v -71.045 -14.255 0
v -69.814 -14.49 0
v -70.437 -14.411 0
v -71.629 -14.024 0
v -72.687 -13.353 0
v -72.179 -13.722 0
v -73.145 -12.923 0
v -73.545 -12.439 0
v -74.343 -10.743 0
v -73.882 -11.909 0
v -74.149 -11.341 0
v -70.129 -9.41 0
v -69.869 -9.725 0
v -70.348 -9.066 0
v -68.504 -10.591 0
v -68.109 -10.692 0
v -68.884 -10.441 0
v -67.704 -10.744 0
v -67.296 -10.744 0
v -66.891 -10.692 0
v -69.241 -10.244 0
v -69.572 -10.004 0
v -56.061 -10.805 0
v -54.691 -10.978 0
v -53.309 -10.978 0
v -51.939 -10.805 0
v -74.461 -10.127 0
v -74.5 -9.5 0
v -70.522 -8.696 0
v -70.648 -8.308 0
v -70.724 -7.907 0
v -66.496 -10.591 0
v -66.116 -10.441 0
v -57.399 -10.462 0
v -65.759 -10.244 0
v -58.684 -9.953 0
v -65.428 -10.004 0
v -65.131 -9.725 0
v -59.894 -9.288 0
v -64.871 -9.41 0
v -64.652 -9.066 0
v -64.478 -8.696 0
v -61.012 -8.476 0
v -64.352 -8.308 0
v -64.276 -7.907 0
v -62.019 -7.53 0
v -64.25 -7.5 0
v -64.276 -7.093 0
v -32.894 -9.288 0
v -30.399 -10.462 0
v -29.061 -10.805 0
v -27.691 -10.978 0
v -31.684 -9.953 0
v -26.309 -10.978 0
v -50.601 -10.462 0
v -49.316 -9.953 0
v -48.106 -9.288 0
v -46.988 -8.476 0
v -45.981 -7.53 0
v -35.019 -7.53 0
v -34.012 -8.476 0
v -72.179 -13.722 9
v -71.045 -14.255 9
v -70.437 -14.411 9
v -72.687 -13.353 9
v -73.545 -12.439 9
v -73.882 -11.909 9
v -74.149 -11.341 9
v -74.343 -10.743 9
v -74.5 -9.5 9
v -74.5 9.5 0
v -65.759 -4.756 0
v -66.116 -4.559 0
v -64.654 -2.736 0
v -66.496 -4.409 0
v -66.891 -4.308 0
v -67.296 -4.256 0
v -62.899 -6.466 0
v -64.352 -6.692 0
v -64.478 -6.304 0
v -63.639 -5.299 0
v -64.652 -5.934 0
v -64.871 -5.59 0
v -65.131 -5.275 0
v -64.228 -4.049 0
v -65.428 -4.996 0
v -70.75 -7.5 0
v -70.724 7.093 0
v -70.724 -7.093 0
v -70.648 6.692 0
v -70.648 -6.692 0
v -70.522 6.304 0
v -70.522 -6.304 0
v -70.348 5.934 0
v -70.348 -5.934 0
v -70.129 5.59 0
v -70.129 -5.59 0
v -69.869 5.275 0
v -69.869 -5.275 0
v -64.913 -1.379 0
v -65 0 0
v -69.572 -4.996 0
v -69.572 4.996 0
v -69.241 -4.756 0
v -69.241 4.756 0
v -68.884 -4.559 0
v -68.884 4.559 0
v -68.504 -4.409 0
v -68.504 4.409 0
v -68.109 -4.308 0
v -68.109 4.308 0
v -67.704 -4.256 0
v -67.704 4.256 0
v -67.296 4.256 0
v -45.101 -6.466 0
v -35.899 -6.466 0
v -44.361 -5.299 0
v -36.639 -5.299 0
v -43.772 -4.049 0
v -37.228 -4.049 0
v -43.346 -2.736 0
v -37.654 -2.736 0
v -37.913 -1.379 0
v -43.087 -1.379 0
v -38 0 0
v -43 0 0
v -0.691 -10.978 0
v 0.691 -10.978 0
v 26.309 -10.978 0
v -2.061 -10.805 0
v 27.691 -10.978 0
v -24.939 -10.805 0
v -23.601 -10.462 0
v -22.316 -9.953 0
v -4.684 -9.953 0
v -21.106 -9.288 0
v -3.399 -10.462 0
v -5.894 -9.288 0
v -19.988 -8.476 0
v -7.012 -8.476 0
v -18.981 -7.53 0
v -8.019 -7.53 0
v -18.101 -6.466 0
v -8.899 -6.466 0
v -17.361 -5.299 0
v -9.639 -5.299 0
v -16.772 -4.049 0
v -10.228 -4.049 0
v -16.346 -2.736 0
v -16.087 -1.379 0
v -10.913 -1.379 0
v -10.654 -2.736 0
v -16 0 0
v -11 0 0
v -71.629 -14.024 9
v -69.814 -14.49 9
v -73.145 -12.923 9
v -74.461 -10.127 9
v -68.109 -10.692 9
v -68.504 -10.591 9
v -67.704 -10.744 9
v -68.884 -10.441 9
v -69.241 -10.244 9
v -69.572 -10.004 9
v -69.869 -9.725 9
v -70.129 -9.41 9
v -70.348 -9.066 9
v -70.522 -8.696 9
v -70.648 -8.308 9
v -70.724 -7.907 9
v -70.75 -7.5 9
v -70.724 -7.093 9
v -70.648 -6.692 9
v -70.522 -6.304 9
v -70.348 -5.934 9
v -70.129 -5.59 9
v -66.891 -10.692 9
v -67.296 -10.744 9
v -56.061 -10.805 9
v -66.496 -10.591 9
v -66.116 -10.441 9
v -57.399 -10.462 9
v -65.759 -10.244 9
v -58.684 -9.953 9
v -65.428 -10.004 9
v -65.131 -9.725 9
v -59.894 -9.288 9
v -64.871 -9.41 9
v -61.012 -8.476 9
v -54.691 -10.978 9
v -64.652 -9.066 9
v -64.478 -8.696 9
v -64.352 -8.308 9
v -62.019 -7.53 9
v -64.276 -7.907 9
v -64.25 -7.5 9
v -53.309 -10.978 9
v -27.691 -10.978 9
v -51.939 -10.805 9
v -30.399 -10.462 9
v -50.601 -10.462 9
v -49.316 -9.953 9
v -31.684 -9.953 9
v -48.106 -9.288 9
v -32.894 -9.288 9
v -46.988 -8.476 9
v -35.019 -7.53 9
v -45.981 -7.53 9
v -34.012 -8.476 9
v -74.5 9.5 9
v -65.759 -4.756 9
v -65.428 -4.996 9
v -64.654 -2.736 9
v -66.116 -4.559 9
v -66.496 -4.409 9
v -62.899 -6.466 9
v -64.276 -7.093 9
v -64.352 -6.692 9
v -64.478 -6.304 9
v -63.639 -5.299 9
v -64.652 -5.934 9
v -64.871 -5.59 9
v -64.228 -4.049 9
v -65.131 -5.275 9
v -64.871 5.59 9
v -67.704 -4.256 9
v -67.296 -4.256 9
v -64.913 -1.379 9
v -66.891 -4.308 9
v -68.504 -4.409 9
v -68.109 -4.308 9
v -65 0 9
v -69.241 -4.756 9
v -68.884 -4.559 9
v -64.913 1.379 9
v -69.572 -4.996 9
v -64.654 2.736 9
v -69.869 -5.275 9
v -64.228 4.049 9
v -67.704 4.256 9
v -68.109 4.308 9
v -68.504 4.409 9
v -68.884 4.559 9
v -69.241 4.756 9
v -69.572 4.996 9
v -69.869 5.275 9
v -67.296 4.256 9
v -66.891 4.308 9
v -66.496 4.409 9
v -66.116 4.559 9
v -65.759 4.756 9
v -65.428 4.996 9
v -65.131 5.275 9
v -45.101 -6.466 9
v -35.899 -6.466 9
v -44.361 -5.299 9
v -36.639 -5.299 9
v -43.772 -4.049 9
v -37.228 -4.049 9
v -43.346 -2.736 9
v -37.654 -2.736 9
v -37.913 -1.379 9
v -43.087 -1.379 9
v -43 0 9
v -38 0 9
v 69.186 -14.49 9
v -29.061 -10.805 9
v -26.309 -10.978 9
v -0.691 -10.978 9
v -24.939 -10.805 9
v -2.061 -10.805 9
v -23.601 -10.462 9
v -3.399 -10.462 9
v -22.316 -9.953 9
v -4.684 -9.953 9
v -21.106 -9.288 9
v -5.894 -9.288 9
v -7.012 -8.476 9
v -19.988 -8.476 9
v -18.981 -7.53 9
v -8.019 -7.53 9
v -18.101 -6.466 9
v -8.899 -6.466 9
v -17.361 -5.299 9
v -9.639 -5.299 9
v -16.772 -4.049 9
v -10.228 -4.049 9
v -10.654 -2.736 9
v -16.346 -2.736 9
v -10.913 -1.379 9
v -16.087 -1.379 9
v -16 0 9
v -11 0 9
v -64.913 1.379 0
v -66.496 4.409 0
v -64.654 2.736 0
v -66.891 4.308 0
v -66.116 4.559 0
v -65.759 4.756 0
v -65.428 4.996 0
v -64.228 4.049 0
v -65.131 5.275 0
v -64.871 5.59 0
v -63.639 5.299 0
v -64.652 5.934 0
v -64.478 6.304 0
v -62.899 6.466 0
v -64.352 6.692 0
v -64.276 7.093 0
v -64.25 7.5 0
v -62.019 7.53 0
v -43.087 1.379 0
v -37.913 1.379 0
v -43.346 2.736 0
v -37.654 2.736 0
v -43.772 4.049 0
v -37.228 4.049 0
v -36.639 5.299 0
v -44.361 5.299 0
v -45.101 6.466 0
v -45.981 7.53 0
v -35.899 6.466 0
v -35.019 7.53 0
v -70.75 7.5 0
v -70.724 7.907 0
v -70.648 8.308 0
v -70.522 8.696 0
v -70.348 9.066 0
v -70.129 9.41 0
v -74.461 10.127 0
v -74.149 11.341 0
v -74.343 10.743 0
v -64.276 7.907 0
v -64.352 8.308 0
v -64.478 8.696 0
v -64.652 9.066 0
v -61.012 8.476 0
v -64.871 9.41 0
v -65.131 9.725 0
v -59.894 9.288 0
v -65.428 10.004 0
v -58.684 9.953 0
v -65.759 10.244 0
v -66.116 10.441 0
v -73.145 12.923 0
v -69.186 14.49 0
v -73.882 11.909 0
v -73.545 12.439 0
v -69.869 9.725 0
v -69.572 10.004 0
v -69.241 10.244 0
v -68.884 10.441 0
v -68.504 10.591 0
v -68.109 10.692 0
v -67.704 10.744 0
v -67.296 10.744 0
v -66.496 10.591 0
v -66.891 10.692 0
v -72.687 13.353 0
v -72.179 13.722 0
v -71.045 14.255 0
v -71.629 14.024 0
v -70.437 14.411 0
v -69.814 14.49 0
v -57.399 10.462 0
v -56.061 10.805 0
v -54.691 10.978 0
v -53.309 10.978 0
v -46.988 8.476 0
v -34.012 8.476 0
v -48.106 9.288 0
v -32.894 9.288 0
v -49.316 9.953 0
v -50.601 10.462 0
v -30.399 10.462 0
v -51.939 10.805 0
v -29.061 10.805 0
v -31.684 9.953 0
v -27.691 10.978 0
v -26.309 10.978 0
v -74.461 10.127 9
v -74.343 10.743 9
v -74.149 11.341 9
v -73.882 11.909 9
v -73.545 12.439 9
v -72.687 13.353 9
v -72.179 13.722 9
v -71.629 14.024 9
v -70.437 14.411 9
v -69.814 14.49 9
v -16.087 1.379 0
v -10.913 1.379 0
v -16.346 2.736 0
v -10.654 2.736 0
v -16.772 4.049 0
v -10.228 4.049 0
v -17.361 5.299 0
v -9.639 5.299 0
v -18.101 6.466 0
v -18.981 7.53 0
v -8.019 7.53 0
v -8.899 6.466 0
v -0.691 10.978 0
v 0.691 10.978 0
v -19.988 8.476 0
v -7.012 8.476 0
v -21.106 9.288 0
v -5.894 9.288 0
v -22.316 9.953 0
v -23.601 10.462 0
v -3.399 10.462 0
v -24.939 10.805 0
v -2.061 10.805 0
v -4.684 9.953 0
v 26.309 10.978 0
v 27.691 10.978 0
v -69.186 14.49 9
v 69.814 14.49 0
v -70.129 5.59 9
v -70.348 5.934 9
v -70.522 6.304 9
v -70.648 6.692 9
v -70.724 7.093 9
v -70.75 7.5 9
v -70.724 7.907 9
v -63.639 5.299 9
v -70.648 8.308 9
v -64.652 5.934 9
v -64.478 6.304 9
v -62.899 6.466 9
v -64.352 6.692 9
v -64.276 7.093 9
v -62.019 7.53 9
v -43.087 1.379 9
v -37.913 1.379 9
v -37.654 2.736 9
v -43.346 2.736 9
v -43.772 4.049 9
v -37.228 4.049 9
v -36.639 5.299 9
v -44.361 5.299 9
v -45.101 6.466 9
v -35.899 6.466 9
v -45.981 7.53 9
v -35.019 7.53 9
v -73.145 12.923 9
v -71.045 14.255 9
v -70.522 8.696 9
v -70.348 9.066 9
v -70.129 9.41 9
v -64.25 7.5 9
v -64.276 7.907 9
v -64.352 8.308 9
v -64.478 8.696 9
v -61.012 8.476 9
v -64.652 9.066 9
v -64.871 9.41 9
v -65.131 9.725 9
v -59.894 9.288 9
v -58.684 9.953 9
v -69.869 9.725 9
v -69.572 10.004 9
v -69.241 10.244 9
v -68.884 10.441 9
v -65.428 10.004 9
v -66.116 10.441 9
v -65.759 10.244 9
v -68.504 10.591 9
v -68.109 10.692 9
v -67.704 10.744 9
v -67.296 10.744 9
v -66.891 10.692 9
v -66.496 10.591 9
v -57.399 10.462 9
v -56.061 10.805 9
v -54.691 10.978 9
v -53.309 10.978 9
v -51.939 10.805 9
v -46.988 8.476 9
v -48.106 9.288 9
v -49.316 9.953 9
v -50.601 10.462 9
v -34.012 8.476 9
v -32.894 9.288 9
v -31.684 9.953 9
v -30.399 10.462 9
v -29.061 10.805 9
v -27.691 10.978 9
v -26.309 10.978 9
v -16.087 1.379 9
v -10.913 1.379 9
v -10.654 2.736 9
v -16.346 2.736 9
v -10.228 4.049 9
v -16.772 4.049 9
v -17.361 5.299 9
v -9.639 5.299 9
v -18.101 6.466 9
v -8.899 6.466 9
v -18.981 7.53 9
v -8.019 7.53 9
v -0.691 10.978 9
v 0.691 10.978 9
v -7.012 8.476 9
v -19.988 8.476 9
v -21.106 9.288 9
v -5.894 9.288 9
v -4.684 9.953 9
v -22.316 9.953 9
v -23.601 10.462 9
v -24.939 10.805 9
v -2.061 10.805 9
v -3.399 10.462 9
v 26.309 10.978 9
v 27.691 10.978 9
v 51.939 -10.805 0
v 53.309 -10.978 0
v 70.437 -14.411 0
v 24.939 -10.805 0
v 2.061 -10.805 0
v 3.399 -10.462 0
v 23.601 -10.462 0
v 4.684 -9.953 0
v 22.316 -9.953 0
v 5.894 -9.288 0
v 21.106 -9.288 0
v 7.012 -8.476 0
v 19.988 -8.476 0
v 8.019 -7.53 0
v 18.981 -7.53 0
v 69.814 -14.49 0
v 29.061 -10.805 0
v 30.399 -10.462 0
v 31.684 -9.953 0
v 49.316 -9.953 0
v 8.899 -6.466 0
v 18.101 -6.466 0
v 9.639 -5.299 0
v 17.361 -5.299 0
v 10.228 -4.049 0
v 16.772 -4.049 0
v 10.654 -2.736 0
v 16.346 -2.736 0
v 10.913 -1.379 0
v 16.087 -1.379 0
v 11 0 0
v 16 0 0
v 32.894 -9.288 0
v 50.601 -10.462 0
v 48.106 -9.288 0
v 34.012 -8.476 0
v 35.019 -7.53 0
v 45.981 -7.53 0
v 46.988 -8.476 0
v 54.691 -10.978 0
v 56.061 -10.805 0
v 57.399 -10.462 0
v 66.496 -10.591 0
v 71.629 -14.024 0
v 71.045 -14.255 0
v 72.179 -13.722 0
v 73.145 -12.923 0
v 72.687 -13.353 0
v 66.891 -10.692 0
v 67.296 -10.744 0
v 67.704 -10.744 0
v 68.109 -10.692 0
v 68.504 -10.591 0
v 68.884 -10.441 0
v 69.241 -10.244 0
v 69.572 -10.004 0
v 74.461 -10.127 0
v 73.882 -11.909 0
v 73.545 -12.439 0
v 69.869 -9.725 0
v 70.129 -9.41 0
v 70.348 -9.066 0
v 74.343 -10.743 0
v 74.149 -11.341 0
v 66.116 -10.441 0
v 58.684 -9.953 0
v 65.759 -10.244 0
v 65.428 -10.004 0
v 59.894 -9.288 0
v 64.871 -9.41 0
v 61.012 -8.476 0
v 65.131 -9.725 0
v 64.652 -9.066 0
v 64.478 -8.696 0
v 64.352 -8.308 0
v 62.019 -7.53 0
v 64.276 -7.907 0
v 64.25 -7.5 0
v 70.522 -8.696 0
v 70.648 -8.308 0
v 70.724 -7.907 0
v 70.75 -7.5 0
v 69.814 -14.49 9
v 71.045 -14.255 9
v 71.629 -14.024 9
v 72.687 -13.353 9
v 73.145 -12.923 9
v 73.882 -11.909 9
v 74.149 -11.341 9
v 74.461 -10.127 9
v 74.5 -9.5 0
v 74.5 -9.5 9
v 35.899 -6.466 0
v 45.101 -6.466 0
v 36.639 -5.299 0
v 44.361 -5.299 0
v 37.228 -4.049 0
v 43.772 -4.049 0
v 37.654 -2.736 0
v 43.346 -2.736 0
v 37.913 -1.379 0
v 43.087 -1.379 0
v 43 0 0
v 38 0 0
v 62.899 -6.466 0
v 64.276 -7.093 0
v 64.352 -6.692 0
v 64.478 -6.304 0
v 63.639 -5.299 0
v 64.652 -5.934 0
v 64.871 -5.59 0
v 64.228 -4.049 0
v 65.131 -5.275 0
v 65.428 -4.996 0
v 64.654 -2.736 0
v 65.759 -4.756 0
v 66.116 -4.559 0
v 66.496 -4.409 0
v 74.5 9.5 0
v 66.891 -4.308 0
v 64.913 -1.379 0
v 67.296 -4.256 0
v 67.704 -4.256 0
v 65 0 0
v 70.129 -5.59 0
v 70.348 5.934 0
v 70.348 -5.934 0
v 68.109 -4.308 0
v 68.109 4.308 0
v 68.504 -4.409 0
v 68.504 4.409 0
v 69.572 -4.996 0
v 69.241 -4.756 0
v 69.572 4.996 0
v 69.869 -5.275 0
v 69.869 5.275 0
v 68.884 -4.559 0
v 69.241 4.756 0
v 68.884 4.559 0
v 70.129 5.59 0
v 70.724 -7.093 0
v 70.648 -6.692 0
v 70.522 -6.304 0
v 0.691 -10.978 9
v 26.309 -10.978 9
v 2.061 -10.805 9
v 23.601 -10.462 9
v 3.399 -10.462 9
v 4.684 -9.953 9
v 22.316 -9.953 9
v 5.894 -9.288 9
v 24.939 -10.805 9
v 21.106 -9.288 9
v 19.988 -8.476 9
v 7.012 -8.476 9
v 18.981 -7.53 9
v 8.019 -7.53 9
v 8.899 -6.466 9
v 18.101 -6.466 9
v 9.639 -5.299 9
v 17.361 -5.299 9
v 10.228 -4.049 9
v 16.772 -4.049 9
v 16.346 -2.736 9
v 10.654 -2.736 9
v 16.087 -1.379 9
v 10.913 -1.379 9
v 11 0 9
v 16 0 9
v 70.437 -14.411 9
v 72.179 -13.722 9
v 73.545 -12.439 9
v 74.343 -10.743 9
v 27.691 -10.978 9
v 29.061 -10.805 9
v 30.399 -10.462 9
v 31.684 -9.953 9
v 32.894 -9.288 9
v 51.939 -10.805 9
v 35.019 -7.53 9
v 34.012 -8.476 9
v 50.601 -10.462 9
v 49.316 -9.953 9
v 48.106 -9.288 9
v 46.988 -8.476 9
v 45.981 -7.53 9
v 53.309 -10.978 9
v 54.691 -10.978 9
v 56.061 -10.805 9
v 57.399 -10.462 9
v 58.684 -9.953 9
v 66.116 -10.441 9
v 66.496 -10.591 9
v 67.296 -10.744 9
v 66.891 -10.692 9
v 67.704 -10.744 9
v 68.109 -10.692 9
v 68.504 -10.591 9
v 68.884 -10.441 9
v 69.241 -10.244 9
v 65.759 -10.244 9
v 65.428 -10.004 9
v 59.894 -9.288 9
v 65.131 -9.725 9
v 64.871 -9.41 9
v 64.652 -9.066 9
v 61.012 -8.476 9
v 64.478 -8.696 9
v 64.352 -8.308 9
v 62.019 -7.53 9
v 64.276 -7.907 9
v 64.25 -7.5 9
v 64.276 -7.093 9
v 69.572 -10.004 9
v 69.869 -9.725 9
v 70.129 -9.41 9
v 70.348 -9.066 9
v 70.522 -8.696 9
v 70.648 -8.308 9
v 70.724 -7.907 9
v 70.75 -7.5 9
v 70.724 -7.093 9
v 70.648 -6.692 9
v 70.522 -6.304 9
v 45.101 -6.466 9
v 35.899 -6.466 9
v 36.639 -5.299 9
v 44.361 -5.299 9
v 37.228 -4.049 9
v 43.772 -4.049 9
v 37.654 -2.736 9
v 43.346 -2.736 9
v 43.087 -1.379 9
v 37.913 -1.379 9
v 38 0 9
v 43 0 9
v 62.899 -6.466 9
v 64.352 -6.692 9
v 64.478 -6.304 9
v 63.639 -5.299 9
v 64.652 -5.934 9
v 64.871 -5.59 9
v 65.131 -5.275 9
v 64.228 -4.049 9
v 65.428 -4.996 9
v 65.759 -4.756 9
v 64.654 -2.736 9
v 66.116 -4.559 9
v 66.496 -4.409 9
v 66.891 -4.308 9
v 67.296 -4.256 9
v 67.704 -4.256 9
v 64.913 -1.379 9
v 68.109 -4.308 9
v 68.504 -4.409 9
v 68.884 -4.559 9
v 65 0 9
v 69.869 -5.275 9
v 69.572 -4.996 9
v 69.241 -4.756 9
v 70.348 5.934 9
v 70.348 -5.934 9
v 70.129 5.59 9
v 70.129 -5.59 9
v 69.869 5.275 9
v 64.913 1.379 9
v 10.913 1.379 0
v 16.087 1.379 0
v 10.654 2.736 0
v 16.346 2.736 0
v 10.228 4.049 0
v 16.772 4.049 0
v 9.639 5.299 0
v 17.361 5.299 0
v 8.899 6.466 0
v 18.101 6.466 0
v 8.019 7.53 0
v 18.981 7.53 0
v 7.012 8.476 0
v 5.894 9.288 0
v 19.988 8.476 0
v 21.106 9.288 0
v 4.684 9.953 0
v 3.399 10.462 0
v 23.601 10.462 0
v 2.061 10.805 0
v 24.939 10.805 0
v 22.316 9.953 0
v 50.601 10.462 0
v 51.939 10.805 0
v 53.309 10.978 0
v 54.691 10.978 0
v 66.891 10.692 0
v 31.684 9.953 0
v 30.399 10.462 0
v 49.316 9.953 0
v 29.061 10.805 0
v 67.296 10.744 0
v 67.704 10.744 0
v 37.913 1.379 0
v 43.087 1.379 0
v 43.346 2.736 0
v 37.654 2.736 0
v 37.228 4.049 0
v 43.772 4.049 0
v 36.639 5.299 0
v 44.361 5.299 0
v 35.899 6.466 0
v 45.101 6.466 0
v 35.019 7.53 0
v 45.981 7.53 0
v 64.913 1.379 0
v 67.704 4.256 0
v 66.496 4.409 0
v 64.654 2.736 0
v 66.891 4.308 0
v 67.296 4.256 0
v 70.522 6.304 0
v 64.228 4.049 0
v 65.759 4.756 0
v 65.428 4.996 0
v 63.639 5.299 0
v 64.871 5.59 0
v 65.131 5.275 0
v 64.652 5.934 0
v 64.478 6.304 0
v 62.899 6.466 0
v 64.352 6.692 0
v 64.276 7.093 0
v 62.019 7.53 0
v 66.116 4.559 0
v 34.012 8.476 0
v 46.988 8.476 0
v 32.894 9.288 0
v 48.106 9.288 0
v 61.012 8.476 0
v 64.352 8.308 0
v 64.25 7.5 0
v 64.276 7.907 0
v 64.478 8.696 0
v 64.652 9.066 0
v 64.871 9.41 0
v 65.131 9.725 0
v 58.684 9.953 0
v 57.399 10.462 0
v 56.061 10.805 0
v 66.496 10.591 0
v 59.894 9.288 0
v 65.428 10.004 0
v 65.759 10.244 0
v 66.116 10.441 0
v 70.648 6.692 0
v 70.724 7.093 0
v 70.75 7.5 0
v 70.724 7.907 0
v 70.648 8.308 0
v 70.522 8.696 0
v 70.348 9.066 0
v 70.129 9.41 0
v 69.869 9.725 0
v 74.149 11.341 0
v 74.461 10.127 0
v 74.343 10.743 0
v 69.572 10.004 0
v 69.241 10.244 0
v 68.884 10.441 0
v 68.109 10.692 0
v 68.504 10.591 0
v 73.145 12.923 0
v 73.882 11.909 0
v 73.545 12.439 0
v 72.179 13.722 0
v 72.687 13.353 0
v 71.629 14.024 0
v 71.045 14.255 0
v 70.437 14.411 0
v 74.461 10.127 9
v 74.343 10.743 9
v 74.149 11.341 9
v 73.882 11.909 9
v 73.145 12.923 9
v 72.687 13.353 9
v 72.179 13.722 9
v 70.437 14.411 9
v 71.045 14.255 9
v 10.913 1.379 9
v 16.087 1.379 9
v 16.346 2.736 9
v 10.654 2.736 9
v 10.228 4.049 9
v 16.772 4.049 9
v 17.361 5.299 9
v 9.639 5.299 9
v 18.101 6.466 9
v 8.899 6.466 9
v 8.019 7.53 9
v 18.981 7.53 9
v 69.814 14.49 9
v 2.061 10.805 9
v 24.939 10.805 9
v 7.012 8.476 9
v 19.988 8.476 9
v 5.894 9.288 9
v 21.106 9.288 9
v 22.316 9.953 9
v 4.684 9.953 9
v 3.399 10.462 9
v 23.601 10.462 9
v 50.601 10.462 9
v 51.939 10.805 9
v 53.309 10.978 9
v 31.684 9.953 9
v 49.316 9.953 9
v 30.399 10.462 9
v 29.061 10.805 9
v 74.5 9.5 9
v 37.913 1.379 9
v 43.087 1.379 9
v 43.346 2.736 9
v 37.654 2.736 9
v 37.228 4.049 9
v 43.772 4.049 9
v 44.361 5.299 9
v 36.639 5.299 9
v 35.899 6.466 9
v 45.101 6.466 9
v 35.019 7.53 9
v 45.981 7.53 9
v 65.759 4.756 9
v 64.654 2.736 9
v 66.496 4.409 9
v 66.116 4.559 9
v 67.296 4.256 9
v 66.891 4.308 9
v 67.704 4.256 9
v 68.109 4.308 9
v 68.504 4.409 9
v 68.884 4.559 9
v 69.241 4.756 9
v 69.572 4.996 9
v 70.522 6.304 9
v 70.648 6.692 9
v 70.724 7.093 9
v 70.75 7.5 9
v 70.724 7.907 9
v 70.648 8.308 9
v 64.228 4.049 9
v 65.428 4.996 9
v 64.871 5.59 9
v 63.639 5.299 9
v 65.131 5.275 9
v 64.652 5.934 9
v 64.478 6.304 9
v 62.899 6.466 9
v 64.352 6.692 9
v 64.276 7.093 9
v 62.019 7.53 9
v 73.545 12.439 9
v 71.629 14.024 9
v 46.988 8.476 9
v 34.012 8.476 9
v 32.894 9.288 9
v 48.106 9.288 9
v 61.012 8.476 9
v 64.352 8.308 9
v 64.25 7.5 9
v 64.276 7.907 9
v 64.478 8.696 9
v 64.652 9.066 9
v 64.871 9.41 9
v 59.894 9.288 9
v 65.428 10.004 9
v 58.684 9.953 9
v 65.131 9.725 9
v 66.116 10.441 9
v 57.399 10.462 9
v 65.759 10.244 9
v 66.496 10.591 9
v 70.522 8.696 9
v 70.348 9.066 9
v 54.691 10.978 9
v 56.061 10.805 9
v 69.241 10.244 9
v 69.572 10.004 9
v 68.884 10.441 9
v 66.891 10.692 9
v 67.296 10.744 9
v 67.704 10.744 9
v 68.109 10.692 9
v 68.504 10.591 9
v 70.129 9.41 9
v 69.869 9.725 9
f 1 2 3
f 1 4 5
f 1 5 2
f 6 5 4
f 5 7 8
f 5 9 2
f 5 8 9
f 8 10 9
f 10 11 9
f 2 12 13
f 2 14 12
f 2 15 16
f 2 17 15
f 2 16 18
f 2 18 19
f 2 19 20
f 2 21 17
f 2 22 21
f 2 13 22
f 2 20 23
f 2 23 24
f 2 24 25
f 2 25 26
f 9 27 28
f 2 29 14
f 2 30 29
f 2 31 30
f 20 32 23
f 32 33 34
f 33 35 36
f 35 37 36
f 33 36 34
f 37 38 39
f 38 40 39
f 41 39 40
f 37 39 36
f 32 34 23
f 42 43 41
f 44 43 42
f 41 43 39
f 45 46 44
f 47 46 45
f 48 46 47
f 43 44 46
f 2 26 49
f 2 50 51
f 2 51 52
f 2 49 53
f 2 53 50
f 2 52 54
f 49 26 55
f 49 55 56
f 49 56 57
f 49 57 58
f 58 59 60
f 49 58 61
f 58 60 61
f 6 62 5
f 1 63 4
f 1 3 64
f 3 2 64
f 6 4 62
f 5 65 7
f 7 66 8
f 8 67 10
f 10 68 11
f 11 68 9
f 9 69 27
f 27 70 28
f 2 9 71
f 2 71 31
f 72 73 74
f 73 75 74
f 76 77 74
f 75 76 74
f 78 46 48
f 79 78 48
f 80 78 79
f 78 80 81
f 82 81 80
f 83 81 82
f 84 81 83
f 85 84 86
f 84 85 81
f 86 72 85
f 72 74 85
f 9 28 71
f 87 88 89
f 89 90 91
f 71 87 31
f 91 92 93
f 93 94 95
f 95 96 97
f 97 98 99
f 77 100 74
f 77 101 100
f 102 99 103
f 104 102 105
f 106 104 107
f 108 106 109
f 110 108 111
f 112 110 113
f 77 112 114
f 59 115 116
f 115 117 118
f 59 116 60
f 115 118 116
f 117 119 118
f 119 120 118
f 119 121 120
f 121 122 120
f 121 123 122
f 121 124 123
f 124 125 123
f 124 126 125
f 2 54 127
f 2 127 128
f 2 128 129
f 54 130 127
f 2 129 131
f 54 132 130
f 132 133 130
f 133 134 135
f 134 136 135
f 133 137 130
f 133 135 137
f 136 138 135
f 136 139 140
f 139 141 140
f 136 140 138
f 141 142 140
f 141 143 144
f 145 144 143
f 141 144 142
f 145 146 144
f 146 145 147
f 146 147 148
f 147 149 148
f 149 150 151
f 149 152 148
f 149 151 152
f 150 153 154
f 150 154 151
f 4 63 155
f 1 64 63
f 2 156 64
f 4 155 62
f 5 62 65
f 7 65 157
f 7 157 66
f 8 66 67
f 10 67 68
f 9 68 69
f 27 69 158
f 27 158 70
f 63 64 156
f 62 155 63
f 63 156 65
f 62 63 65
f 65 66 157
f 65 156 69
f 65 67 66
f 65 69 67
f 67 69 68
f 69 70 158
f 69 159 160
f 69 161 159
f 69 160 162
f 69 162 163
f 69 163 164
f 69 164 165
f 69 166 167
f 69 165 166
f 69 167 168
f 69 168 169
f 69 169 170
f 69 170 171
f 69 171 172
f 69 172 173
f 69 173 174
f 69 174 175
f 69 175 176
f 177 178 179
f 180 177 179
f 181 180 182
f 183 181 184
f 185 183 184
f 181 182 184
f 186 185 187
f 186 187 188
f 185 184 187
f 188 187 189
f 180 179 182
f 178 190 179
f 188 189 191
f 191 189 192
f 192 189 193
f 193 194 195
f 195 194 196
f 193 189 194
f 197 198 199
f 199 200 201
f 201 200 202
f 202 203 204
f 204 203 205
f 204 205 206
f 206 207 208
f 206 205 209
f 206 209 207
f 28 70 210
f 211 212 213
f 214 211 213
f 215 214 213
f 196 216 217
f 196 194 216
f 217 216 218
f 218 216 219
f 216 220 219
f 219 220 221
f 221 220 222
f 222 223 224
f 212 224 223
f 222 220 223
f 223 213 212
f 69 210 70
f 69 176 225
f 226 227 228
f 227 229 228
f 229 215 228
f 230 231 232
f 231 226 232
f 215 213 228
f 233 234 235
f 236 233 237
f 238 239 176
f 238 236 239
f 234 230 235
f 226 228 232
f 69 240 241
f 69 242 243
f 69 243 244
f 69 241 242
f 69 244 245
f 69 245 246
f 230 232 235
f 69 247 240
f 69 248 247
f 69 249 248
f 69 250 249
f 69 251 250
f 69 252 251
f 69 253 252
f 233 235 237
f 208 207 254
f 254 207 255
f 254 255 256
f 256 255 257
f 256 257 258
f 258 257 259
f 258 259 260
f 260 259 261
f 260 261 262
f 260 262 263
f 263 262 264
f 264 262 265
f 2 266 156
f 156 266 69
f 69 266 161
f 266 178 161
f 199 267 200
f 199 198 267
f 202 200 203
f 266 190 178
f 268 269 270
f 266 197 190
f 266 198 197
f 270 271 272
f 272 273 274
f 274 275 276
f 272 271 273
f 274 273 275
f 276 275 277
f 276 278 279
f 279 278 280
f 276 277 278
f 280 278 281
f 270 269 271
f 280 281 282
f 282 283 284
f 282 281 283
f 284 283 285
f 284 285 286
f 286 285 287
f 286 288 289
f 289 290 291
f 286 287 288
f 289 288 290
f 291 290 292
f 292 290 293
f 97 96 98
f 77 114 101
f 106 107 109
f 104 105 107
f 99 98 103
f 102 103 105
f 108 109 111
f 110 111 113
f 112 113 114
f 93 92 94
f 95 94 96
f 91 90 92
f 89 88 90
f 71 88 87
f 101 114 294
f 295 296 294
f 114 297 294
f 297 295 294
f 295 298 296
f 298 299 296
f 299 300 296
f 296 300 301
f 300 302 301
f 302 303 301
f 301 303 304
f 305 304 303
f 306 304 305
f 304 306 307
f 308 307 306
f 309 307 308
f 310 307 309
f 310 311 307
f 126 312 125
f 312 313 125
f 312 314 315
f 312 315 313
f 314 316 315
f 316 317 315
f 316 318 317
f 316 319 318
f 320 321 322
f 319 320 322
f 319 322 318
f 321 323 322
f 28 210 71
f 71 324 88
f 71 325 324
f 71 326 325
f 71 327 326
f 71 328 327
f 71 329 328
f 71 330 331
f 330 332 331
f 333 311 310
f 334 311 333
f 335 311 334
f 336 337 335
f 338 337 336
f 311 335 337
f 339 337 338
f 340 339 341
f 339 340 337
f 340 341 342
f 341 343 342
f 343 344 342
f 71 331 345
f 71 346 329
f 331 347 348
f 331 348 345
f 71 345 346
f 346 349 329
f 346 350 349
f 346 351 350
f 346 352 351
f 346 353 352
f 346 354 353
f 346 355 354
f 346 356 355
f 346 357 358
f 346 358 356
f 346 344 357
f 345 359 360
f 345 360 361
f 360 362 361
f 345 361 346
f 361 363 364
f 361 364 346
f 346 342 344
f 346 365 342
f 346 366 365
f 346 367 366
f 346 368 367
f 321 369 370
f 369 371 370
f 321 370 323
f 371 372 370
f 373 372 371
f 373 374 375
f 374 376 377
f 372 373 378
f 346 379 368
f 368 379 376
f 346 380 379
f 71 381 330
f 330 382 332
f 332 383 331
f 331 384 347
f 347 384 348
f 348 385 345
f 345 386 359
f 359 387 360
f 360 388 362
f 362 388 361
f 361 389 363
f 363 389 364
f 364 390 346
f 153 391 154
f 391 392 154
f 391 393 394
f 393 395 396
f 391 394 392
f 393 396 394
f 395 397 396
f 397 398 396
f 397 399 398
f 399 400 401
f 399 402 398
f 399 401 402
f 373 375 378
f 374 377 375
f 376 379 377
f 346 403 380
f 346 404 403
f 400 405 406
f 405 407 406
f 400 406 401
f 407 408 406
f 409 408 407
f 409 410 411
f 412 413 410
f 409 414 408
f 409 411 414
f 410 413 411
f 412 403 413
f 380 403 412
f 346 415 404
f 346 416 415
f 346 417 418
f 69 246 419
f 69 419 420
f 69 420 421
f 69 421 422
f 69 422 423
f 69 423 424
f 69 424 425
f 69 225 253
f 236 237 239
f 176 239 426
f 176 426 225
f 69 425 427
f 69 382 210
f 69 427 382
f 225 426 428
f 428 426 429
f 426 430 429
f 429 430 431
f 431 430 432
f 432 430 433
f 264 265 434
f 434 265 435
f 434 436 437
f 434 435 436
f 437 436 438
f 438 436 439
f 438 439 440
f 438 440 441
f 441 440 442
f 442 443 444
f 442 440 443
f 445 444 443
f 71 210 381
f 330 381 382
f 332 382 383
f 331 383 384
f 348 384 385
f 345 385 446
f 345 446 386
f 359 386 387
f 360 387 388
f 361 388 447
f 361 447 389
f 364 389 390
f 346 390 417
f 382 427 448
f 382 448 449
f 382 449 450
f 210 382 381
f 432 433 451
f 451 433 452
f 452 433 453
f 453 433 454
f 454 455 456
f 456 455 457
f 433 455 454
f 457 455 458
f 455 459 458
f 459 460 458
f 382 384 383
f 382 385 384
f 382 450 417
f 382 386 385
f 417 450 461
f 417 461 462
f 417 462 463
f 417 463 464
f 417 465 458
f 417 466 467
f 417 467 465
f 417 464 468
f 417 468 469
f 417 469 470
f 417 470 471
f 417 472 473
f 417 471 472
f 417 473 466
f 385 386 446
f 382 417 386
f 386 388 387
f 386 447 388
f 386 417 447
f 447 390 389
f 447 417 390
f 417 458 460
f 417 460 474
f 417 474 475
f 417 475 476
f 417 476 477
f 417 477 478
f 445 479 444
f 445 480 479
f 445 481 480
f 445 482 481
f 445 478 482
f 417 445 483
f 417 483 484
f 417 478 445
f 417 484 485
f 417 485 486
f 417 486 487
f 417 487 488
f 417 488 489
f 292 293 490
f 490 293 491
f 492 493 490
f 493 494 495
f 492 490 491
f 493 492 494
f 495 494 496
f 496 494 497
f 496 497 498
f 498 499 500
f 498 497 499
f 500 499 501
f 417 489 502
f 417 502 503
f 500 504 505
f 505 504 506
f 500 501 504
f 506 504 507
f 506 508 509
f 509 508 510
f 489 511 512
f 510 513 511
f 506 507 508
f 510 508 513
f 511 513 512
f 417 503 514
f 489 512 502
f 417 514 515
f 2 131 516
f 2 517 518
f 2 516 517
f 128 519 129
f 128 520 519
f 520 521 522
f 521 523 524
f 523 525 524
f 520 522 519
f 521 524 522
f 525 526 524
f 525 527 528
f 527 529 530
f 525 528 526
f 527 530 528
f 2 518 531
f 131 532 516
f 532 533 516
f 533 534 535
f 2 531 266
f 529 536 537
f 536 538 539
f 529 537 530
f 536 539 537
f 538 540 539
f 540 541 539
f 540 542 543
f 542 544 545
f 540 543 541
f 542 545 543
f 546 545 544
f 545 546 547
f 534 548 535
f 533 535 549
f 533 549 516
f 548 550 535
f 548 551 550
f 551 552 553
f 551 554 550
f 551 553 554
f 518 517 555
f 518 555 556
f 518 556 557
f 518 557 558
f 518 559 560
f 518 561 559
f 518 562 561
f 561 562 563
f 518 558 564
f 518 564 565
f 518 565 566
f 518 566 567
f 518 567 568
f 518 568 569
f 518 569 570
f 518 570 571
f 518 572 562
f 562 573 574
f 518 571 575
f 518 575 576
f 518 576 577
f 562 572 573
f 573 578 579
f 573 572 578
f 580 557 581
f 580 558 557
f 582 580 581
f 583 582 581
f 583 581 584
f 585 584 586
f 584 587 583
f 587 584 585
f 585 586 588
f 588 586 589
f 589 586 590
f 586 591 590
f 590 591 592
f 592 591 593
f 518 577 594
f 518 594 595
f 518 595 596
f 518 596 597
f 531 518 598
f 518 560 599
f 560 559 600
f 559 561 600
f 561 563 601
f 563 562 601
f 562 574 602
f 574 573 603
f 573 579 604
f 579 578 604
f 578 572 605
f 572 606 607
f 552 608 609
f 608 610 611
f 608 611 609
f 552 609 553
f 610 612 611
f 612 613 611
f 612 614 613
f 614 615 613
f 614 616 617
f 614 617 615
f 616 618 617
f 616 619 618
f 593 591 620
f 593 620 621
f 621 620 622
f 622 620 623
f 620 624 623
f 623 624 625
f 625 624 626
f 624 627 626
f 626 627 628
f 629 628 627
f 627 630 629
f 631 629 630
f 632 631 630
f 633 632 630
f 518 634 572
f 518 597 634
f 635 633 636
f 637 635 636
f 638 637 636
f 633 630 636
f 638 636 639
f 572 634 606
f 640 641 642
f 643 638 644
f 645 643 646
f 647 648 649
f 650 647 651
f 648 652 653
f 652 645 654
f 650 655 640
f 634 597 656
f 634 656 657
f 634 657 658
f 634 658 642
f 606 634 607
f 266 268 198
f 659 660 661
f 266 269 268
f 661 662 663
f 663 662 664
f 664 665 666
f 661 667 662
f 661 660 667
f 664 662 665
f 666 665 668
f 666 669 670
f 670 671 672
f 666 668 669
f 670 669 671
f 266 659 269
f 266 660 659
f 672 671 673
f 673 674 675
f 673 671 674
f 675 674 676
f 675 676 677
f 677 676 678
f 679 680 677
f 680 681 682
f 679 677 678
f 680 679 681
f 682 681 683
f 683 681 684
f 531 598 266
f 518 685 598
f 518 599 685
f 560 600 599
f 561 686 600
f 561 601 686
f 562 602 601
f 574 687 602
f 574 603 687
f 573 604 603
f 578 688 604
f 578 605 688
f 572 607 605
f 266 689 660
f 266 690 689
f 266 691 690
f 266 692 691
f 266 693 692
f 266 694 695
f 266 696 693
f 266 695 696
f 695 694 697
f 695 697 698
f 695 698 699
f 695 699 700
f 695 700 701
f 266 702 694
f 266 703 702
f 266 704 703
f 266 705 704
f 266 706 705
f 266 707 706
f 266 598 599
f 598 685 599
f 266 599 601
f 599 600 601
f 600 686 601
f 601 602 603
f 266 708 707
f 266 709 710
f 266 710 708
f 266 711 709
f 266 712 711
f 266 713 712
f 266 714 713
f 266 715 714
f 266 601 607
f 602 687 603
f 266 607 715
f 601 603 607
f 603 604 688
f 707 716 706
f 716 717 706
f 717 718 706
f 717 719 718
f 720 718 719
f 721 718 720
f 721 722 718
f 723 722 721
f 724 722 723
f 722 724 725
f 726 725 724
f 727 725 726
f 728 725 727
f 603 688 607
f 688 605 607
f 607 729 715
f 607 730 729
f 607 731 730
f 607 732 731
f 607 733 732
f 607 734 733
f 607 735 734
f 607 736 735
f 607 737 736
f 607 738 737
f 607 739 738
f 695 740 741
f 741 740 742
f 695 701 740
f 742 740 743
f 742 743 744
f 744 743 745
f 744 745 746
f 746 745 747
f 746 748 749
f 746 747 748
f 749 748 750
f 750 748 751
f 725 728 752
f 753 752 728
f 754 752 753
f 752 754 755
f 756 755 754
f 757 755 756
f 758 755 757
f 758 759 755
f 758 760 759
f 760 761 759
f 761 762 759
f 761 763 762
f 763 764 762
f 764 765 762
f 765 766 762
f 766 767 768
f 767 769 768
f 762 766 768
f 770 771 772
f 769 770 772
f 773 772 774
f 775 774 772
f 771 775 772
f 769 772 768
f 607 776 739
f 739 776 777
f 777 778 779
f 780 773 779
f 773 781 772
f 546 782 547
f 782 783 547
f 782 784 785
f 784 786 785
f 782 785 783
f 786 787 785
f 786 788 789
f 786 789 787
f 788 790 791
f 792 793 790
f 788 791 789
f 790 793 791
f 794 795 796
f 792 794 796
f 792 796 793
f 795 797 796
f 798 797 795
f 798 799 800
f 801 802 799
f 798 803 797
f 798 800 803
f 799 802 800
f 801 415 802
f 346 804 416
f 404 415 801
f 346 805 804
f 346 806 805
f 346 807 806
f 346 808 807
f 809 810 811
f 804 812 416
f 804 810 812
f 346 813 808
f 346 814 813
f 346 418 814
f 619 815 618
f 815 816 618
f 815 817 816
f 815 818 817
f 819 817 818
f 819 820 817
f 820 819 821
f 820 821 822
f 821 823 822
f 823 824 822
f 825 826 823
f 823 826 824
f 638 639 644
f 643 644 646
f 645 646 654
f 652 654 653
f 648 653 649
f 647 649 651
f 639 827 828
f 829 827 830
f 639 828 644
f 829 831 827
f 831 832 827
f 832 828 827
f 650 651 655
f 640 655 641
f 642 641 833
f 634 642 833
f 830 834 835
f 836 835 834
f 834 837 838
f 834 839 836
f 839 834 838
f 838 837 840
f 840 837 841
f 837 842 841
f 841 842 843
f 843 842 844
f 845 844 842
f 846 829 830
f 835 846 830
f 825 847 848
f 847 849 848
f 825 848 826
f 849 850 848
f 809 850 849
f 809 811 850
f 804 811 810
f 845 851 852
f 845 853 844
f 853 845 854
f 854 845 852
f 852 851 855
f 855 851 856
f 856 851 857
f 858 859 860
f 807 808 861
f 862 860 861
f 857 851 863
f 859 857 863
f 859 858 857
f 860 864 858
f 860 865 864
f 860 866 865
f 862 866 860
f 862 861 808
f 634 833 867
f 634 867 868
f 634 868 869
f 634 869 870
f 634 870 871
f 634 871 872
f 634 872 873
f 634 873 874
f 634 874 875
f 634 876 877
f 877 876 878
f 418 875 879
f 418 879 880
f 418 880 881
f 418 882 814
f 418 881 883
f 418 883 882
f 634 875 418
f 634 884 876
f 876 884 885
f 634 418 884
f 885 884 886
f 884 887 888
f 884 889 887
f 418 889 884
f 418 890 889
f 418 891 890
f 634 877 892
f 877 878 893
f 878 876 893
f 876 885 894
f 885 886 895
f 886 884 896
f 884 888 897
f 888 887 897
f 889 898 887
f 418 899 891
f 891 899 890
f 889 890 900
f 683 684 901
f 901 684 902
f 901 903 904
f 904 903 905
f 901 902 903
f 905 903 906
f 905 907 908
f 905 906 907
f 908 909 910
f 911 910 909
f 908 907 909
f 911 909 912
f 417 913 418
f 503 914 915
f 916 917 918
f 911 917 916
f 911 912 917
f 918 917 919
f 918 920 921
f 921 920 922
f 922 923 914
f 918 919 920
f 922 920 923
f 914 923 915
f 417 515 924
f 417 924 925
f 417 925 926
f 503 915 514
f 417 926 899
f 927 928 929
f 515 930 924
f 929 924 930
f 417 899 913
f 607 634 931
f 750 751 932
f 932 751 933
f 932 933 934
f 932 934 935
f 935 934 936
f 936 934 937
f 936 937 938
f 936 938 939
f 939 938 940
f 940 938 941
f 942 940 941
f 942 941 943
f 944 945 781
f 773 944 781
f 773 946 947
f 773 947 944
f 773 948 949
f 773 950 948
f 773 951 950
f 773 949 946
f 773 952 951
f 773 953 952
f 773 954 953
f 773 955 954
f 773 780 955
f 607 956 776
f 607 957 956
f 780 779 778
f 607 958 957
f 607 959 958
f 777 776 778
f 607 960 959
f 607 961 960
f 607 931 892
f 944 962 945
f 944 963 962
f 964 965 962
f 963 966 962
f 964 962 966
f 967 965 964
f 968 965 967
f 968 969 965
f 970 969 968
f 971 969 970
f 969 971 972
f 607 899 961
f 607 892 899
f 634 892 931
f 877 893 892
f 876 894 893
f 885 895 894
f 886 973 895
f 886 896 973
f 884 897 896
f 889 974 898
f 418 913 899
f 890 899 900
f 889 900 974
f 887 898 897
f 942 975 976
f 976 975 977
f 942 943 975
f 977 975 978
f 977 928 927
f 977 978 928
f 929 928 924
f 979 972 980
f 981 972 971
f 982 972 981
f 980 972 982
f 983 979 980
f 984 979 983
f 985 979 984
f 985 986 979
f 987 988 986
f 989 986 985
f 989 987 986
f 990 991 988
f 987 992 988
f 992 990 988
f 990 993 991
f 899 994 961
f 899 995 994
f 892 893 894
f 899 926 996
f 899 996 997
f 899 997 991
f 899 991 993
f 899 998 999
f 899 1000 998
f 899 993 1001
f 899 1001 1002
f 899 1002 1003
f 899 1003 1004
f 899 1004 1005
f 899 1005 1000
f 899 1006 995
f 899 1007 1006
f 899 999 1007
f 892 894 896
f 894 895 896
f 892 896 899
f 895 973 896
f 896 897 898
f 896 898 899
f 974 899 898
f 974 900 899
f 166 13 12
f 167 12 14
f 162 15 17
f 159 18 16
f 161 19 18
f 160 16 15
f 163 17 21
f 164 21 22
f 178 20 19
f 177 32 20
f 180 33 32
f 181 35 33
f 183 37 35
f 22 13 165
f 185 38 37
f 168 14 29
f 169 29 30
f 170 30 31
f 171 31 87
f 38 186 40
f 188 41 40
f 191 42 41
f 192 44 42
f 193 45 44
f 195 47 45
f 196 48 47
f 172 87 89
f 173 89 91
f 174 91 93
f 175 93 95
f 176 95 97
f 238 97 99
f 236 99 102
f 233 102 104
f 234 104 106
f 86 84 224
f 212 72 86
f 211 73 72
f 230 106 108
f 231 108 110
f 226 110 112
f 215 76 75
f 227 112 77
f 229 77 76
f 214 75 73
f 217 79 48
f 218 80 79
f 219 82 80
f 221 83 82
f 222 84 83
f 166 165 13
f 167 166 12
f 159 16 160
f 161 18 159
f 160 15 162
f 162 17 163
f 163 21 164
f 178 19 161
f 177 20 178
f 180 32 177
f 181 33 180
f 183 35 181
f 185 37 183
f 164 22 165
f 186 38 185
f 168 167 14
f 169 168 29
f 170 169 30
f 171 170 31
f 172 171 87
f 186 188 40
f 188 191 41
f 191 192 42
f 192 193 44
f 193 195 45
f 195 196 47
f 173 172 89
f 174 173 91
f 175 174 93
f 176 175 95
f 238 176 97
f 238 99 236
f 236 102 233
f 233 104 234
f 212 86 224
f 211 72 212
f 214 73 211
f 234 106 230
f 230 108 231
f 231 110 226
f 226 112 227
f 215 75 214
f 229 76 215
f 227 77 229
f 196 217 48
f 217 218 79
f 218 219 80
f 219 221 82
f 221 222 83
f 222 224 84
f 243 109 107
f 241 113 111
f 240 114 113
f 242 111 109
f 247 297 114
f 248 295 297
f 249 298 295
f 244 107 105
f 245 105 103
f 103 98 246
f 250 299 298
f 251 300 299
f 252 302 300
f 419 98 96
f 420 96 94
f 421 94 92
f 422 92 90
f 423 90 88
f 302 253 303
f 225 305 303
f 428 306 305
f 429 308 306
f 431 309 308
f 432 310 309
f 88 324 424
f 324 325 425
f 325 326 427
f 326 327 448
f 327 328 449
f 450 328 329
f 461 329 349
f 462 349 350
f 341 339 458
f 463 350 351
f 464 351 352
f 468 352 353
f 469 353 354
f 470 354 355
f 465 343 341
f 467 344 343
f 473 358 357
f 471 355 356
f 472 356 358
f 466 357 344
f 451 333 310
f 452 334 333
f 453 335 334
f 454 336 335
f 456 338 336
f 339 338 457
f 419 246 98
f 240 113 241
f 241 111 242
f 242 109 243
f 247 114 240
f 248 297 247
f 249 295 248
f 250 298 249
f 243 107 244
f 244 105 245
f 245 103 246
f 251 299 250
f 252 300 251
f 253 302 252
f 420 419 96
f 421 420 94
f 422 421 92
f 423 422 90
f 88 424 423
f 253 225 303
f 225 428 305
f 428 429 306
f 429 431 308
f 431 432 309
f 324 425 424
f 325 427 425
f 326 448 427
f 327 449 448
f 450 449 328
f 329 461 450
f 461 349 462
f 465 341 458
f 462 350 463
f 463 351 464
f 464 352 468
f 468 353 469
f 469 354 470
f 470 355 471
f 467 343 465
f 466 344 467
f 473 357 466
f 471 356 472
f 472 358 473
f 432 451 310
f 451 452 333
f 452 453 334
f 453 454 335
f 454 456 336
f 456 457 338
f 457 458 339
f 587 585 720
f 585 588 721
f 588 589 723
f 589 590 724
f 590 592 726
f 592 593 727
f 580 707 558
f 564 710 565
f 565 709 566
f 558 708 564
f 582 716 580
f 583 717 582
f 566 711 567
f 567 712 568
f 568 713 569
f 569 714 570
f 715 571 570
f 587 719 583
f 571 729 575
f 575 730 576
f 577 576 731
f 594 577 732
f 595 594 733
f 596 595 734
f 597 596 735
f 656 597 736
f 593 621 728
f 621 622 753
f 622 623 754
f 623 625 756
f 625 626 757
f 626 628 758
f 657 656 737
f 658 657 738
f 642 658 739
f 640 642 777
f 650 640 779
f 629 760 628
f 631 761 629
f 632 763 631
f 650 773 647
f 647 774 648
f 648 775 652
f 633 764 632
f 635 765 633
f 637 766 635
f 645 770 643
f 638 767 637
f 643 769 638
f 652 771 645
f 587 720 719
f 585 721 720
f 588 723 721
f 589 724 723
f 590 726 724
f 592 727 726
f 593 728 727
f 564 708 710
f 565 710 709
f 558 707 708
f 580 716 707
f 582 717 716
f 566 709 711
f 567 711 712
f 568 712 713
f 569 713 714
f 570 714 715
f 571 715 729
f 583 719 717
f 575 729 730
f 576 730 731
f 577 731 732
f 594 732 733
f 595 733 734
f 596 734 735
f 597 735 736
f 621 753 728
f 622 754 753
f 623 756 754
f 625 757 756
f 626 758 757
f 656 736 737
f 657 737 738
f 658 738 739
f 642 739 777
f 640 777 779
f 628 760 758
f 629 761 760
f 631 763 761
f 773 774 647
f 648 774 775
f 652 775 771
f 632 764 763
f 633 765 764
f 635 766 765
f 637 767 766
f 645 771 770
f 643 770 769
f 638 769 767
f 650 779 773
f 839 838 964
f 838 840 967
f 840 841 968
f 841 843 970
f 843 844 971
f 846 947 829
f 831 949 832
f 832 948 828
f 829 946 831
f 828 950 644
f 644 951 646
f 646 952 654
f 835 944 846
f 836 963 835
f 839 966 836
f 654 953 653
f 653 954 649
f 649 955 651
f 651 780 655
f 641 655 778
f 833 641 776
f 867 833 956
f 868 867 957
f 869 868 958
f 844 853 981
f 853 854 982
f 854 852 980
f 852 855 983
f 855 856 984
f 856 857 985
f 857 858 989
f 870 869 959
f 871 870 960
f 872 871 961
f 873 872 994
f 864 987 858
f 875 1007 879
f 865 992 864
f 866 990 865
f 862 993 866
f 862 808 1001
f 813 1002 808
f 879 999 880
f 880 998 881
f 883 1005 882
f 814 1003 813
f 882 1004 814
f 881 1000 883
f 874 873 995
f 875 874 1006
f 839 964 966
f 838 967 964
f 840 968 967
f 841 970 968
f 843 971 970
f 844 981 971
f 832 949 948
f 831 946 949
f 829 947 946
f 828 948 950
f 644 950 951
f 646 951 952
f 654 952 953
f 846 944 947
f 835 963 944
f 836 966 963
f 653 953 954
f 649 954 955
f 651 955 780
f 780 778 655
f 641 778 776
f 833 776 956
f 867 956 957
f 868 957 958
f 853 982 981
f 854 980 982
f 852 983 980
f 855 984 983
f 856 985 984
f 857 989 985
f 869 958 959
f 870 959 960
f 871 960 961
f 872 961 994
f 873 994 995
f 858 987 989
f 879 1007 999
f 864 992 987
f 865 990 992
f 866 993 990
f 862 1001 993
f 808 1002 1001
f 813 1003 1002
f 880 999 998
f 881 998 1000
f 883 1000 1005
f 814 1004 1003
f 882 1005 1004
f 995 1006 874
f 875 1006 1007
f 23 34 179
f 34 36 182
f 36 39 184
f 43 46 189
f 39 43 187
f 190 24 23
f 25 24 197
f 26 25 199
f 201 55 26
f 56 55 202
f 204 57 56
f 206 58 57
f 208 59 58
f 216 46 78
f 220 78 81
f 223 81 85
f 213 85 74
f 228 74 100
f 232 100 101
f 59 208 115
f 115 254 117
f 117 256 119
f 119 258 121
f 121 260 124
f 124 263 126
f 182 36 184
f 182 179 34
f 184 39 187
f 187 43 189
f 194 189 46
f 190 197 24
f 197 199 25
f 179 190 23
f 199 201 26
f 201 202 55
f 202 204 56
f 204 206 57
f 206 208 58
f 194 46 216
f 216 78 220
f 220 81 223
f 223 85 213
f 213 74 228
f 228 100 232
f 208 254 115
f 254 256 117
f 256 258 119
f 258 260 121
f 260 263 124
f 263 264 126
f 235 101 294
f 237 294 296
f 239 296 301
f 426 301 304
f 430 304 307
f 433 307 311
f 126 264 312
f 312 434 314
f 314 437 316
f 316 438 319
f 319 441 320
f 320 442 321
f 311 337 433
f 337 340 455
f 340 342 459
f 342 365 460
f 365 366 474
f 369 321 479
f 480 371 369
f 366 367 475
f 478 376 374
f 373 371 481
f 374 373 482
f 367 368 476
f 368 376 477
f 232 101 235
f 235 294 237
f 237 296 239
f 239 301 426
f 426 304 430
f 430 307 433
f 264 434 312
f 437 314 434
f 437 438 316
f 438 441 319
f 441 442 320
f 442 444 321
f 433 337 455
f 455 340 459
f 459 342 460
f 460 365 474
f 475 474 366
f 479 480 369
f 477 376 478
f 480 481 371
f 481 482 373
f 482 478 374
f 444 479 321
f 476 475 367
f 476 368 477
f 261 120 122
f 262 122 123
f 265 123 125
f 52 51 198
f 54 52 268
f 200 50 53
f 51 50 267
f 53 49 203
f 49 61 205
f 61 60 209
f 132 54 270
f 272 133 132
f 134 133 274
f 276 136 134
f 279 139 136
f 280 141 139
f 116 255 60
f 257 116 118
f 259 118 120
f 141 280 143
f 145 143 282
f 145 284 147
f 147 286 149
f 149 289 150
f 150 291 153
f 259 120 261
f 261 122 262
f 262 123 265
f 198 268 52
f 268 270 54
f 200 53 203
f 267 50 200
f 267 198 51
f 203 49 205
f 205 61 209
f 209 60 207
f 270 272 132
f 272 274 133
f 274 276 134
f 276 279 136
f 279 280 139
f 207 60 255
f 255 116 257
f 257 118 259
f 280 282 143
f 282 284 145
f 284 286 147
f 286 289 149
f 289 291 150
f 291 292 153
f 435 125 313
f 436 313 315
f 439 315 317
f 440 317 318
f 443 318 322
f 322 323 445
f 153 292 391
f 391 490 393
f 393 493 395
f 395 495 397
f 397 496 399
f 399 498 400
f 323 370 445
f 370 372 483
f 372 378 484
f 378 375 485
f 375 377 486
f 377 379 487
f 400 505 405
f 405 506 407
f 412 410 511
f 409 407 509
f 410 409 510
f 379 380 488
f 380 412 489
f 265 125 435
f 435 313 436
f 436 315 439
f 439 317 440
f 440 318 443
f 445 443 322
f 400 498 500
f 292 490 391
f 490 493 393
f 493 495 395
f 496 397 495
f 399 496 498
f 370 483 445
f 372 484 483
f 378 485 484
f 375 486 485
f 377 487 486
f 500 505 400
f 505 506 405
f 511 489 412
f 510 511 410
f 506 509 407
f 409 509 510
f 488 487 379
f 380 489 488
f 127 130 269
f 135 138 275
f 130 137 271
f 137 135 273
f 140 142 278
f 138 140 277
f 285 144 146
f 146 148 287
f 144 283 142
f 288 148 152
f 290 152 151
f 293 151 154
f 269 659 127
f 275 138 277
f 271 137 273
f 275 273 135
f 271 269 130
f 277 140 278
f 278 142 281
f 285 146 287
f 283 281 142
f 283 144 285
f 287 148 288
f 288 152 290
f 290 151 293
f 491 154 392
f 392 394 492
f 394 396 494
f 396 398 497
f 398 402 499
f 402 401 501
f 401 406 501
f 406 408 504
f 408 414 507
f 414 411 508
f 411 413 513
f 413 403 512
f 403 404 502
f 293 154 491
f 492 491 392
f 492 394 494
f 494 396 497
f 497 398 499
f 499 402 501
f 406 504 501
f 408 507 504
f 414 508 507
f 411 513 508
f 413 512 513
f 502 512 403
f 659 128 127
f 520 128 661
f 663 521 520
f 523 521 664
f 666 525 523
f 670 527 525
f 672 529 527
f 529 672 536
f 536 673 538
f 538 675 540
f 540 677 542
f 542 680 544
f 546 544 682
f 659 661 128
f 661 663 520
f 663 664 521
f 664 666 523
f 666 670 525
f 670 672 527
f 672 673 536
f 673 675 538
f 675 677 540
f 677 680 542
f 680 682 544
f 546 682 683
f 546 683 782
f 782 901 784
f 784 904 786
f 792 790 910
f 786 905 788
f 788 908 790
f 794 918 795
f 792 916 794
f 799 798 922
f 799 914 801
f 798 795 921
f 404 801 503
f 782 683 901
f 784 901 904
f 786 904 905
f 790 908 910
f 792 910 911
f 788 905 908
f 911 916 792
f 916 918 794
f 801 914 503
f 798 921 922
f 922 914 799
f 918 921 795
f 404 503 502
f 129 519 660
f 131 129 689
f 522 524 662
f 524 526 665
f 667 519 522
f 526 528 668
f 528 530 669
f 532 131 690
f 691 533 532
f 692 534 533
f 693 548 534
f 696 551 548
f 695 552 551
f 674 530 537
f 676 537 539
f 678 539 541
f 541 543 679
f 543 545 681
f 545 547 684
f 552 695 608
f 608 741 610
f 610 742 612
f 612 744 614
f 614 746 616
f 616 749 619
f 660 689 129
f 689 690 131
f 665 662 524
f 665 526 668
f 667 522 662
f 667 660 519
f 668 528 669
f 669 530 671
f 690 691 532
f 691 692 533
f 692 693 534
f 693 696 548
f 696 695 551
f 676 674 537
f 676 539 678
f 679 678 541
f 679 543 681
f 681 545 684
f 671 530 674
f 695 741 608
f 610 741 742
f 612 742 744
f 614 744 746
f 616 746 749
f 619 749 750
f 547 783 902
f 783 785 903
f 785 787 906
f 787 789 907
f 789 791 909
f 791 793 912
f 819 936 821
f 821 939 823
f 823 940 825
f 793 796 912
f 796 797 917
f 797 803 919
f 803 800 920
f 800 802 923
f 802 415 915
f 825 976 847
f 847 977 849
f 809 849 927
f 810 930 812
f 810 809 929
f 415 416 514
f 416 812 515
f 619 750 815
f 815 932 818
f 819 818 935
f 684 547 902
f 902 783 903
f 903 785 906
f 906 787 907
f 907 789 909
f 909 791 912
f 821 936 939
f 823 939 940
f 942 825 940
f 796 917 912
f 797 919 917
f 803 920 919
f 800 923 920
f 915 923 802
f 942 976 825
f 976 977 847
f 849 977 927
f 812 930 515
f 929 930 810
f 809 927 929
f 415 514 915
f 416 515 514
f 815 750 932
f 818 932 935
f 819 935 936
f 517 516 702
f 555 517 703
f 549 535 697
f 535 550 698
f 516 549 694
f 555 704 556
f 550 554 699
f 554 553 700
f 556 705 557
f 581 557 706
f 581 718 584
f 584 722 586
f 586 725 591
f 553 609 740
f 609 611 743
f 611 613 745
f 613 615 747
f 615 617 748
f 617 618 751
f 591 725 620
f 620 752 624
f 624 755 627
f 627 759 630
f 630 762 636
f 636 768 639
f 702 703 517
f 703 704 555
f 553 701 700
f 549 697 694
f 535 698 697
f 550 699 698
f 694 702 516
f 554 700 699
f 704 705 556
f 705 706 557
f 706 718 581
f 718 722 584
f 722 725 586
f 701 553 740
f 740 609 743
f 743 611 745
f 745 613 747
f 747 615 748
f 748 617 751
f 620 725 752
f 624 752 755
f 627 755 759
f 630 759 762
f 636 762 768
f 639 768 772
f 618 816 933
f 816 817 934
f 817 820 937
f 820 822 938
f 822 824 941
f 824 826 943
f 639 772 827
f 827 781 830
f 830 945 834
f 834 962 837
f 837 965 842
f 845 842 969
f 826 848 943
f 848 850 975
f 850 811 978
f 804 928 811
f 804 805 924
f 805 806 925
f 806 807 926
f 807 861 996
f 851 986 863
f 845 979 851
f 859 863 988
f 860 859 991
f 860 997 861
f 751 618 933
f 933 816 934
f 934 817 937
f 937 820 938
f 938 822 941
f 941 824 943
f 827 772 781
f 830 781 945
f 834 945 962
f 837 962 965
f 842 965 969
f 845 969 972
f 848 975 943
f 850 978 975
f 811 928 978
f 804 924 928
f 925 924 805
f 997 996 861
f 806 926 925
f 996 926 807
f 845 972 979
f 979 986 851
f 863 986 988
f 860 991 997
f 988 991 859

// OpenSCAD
$fn = 50;

difference() {
	union() {
		hull() {
			translate(v = [-69.5, 9.5, 0]) {
				cylinder(h = 9, r = 5);
			}
			translate(v = [69.5, 9.5, 0]) {
				cylinder(h = 9, r = 5);
			}
			translate(v = [-69.5, -9.5, 0]) {
				cylinder(h = 9, r = 5);
			}
			translate(v = [69.5, -9.5, 0]) {
				cylinder(h = 9, r = 5);
			}
		}
	}
	union() {
		translate(v = [-67.5, -7.5, -100.0]) {
			cylinder(h = 200, r = 3.25);
		}
		translate(v = [-67.5, 7.5, -100.0]) {
			cylinder(h = 200, r = 3.25);
		}
		translate(v = [67.5, -7.5, -100.0]) {
			cylinder(h = 200, r = 3.25);
		}
		translate(v = [67.5, 7.5, -100.0]) {
			cylinder(h = 200, r = 3.25);
		}
		translate(v = [-67.5, -7.5, -100.0]) {
			cylinder(h = 200, r = 1.8);
		}
		translate(v = [-67.5, 7.5, -100.0]) {
			cylinder(h = 200, r = 1.8);
		}
		translate(v = [67.5, -7.5, -100.0]) {
			cylinder(h = 200, r = 1.8);
		}
		translate(v = [67.5, 7.5, -100.0]) {
			cylinder(h = 200, r = 1.8);
		}
		translate(v = [-54.0, 0, 0.0]) {
			cylinder(h = 9, r = 11.0);
		}
		translate(v = [-27.0, 0, 0.0]) {
			cylinder(h = 9, r = 11.0);
		}
		cylinder(h = 9, r = 11.0);
		translate(v = [27.0, 0, 0.0]) {
			cylinder(h = 9, r = 11.0);
		}
		translate(v = [54.0, 0, 0.0]) {
			cylinder(h = 9, r = 11.0);
		}
	}
}
